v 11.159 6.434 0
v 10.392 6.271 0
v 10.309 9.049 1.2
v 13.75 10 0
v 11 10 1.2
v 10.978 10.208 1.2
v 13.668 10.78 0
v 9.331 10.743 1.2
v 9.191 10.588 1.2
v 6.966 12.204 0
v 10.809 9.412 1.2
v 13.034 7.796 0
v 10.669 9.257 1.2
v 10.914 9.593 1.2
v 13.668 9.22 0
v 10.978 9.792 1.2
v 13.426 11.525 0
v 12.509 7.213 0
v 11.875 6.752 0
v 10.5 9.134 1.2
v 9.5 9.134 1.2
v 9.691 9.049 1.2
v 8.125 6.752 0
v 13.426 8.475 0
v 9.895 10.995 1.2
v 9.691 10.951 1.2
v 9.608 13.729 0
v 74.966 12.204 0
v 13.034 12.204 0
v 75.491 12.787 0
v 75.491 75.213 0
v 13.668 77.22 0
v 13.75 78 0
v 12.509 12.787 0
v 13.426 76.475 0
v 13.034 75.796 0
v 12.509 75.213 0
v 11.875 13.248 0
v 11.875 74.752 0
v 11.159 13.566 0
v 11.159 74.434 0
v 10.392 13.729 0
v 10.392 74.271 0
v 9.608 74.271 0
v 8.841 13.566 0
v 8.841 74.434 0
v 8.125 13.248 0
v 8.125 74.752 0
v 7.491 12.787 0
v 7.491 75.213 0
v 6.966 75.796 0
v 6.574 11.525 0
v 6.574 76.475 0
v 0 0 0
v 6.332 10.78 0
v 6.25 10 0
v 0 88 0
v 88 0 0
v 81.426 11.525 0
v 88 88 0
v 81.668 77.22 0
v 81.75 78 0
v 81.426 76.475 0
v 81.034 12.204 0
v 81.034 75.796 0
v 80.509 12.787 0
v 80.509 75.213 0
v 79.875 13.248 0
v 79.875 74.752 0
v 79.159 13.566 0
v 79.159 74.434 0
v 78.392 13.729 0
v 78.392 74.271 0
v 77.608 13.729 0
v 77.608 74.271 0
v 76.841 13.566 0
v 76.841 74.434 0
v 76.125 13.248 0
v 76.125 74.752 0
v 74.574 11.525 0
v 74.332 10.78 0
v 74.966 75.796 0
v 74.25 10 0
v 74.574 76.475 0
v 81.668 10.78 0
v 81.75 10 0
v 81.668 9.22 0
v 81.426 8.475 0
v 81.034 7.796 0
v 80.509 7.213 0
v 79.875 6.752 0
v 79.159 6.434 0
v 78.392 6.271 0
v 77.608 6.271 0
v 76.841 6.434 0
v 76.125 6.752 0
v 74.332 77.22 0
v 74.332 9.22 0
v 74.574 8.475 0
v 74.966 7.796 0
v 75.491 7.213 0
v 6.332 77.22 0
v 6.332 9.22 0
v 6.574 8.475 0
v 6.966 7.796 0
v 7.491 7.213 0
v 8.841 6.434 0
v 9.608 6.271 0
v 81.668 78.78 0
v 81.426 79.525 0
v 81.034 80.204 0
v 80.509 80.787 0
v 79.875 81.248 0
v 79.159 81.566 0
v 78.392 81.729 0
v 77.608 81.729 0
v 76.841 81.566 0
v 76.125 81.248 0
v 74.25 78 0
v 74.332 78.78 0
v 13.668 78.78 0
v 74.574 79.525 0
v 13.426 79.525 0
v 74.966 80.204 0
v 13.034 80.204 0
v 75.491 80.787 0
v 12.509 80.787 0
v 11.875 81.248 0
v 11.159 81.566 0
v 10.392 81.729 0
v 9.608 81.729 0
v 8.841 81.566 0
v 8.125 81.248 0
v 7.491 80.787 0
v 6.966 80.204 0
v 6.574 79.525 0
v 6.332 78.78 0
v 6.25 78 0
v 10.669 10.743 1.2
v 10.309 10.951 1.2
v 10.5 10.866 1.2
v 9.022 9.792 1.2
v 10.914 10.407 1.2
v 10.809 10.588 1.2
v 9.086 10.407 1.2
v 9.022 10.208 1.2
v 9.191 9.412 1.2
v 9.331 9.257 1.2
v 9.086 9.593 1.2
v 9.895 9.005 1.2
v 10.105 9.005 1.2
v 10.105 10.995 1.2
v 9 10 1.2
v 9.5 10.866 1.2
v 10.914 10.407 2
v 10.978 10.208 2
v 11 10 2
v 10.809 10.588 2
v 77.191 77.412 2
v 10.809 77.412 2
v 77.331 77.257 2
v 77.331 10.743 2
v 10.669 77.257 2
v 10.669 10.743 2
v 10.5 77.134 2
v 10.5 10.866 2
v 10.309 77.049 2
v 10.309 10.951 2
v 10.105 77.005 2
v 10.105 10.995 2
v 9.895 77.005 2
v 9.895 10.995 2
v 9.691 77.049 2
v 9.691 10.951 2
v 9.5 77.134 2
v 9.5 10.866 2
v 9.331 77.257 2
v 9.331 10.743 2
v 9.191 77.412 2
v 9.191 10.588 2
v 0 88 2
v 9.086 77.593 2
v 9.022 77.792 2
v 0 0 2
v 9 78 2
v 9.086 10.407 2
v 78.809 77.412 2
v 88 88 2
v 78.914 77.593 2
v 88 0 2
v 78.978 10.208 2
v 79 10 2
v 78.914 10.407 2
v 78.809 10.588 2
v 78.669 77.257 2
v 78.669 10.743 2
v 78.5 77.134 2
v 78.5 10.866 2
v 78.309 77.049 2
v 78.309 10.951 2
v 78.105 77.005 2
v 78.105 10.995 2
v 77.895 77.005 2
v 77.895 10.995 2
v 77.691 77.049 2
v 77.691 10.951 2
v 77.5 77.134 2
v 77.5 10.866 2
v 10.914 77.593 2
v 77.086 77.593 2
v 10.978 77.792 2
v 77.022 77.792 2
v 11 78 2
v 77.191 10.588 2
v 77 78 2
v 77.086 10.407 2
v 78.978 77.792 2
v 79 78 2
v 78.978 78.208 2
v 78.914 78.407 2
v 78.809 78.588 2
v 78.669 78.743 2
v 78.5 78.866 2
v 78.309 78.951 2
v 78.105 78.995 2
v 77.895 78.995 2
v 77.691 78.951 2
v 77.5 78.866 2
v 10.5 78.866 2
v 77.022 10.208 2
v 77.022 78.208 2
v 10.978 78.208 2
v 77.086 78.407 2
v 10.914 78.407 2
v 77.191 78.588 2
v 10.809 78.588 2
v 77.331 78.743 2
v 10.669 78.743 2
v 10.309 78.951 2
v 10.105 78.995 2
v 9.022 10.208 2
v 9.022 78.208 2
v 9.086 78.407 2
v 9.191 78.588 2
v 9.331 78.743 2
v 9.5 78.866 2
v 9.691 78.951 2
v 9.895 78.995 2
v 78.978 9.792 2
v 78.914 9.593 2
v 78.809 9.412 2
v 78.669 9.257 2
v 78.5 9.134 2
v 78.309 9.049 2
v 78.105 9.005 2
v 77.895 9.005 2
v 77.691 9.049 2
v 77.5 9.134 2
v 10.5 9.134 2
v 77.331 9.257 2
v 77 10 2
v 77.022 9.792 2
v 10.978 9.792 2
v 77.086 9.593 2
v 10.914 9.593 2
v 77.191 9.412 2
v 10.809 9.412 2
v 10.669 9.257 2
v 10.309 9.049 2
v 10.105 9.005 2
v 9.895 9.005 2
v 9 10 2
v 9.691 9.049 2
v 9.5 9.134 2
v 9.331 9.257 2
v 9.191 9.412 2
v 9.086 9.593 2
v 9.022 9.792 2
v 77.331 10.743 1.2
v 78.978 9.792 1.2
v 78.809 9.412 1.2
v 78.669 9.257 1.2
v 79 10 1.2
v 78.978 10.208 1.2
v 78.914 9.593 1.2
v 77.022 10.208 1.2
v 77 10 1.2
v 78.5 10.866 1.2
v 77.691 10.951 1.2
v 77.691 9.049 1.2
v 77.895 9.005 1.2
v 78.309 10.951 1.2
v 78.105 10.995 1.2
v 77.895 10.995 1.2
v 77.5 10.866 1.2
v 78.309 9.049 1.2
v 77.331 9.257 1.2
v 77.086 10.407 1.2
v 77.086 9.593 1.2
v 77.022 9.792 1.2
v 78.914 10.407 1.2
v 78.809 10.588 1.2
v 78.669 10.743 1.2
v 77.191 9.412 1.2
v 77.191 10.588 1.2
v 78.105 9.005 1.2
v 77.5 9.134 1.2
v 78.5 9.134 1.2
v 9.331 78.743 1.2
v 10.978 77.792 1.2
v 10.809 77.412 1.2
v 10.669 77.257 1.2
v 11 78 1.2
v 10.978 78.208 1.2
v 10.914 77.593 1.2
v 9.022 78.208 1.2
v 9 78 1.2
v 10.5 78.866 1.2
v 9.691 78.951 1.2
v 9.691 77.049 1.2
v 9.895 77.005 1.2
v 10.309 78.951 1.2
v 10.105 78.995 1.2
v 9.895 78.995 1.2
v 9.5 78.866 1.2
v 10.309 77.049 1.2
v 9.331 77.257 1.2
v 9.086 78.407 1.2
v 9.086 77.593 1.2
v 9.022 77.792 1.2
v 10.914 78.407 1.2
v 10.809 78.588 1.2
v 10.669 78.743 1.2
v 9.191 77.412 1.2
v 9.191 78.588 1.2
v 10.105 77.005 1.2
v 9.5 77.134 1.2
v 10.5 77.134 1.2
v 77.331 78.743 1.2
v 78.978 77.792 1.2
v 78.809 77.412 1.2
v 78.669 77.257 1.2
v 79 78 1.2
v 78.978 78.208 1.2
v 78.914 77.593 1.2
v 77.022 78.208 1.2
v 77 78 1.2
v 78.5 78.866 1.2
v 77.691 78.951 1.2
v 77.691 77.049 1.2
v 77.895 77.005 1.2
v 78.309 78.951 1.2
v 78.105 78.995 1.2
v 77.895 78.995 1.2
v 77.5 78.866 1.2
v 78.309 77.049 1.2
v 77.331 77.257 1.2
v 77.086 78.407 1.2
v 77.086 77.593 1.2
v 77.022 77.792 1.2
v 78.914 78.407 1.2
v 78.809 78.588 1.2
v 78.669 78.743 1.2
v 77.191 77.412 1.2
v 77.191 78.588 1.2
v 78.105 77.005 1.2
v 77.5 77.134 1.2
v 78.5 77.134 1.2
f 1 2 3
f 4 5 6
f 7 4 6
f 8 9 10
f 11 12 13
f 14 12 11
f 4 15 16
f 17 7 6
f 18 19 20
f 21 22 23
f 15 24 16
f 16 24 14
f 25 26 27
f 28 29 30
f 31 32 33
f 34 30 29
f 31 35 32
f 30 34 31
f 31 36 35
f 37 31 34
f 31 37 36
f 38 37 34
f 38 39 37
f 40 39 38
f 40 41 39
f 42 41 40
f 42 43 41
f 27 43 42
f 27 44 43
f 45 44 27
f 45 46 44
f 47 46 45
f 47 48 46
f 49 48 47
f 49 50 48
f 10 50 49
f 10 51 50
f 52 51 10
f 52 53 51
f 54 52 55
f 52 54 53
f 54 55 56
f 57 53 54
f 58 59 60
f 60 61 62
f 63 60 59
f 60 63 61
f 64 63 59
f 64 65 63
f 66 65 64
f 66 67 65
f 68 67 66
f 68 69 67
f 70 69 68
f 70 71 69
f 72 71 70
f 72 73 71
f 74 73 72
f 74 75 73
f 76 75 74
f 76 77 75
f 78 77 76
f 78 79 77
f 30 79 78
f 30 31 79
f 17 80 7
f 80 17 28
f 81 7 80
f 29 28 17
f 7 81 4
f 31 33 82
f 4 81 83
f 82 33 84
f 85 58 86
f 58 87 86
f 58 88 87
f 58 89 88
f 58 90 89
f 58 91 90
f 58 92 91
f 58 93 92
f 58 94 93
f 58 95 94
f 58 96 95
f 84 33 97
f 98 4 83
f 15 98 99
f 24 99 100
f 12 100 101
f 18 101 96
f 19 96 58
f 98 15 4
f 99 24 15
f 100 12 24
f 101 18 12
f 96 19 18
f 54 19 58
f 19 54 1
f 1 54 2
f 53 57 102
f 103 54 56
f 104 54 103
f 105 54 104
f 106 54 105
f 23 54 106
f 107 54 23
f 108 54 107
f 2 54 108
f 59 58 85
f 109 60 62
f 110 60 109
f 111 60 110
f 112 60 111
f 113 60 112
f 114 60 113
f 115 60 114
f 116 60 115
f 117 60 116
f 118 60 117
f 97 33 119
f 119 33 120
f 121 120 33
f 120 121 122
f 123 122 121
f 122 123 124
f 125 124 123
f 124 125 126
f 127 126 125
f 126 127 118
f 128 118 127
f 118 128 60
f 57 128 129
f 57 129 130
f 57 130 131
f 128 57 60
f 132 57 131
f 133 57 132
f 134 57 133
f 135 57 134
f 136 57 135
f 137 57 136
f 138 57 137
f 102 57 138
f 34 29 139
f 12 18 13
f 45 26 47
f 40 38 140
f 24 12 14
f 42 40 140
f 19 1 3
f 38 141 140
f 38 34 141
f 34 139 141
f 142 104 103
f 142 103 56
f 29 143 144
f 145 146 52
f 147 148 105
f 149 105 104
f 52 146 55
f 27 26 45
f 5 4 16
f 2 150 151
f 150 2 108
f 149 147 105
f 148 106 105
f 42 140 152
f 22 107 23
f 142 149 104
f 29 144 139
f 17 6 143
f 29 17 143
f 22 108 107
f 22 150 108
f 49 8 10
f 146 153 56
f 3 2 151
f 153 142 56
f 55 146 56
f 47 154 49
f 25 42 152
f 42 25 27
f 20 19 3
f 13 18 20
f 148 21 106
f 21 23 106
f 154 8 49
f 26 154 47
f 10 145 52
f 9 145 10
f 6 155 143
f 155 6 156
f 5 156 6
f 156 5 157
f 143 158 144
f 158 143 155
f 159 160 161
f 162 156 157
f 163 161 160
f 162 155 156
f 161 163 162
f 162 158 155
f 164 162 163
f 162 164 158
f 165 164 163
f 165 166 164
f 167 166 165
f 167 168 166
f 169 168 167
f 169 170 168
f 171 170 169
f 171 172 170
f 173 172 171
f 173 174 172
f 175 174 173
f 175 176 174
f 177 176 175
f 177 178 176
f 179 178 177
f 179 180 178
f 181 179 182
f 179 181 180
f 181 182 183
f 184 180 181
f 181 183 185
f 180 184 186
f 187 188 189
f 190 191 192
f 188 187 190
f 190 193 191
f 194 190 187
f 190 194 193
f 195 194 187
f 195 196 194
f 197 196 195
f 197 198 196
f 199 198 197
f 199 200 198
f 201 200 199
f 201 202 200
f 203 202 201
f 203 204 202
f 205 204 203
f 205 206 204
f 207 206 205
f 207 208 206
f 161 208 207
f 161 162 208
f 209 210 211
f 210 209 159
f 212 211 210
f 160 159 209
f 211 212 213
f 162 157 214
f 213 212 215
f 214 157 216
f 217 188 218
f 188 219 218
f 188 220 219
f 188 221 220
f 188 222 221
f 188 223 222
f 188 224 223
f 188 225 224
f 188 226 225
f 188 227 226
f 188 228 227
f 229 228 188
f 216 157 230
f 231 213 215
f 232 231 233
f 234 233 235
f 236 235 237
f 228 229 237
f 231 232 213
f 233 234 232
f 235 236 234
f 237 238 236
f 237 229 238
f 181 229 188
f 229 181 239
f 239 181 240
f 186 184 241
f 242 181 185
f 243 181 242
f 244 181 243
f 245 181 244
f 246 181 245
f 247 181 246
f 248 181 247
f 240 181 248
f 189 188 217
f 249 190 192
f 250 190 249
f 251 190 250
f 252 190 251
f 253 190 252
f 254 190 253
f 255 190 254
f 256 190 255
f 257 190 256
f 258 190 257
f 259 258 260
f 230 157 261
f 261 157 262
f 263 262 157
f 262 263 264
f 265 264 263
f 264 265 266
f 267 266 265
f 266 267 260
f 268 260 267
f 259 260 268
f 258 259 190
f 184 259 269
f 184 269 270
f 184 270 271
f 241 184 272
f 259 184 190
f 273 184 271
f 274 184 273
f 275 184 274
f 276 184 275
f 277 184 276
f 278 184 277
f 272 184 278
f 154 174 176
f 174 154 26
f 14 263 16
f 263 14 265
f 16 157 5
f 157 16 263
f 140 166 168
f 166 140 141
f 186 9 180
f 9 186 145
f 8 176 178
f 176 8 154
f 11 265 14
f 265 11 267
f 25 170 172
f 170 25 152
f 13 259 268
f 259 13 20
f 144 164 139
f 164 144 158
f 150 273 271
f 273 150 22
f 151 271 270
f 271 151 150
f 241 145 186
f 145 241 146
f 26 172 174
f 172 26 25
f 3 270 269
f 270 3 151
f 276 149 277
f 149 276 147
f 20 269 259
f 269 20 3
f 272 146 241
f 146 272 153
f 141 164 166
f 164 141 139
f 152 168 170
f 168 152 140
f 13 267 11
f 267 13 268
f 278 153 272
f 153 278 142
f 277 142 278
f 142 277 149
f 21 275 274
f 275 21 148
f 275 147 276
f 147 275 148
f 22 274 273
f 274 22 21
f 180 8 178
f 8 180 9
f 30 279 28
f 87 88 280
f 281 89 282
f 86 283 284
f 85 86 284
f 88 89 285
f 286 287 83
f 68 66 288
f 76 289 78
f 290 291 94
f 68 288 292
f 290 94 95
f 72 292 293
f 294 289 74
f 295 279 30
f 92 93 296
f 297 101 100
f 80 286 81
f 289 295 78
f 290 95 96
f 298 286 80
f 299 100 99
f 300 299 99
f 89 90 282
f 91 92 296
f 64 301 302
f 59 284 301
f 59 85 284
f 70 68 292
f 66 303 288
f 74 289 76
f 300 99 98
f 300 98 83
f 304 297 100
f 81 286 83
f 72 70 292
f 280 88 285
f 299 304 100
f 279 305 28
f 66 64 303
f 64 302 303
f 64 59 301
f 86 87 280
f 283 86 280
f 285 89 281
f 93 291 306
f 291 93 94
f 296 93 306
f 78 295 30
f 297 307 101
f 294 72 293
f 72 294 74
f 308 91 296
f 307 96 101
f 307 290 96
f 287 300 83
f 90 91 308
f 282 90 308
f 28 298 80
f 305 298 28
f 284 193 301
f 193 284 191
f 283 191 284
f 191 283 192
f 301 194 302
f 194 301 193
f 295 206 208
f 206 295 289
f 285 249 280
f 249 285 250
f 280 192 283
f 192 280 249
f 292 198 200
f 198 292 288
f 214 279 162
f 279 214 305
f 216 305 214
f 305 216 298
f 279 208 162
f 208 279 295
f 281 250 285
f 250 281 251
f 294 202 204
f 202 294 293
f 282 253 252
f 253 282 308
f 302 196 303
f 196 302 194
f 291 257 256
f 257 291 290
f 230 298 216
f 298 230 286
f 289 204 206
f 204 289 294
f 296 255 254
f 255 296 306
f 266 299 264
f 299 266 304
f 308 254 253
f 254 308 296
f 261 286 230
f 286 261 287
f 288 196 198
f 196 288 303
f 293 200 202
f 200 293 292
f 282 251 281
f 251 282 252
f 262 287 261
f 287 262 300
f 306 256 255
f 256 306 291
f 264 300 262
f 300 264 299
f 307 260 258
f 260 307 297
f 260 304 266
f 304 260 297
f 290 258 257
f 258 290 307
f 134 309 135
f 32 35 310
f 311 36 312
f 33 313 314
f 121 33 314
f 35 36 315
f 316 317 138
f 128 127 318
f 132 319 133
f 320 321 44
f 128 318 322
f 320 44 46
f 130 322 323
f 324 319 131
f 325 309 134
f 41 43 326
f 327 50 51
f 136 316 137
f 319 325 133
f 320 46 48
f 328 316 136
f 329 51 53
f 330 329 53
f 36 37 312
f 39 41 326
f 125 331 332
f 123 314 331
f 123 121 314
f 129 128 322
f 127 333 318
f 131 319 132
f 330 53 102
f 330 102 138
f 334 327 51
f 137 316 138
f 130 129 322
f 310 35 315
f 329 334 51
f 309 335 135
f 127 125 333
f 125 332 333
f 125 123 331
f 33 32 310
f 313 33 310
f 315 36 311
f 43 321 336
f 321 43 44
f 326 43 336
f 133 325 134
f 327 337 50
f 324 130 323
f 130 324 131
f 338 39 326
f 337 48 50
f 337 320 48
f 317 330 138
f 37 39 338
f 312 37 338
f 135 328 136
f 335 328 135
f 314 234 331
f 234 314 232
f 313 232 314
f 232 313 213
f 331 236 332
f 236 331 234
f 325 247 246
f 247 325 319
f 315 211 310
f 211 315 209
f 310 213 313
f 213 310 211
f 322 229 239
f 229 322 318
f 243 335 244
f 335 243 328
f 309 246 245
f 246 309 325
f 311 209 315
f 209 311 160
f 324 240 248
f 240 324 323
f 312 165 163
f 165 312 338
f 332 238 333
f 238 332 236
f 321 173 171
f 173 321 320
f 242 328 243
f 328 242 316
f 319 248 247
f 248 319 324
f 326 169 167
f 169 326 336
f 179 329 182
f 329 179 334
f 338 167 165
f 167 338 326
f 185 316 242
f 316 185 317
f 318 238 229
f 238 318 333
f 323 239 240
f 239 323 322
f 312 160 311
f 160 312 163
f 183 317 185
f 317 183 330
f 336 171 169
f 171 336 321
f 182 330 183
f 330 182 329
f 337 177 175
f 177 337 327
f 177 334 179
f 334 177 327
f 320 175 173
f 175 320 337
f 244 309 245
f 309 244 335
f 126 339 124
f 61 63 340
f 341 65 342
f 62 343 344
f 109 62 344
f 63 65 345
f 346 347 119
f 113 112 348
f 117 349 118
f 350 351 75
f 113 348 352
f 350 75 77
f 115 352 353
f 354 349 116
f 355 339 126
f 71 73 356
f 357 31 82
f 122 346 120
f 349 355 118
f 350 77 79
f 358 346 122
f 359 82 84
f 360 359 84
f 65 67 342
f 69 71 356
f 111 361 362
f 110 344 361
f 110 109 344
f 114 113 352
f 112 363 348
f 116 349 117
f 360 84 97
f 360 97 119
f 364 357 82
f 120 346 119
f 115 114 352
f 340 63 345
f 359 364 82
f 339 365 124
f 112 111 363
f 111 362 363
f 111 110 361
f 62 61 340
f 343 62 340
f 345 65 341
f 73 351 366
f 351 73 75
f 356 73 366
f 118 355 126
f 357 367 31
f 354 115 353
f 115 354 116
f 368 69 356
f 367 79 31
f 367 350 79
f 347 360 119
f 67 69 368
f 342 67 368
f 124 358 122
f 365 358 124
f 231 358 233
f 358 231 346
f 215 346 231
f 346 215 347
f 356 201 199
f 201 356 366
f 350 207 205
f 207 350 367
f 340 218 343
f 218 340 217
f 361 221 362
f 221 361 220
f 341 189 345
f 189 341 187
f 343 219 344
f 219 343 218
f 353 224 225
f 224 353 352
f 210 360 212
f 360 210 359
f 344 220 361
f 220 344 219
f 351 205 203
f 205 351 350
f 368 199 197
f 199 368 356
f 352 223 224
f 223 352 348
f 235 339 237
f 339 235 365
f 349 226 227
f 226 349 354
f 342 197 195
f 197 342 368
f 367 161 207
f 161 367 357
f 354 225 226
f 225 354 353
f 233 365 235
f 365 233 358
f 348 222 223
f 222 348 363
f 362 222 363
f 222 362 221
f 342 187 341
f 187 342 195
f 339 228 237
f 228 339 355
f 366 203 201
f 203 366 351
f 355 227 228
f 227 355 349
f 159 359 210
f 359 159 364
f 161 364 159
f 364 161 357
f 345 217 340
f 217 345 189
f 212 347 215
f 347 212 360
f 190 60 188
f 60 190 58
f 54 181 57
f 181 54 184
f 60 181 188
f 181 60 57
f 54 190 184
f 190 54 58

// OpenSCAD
// Tapa cuadrada de 88x88x2mm con agujeros avellanados
difference() {
    // Base de la tapa
    cube([88, 88, 2]);

    // Agujeros avellanados para tornillos
    // Esquina superior izquierda
    translate([10, 10, 0]) {
        // Parte cónica para la cabeza del tornillo (ahora 1.5x más grande)
        cylinder(d1=7.5, d2=2, h=1.2, $fn=30);
        // Agujero pasante para el cuerpo del tornillo
        translate([0, 0, -1])
            cylinder(d=2, h=3, $fn=30);
    }

    // Esquina superior derecha
    translate([78, 10, 0]) {
        cylinder(d1=7.5, d2=2, h=1.2, $fn=30);
        translate([0, 0, -1])
            cylinder(d=2, h=3, $fn=30);
    }

    // Esquina inferior izquierda
    translate([10, 78, 0]) {
        cylinder(d1=7.5, d2=2, h=1.2, $fn=30);
        translate([0, 0, -1])
            cylinder(d=2, h=3, $fn=30);
    }

    // Esquina inferior derecha
    translate([78, 78, 0]) {
        cylinder(d1=7.5, d2=2, h=1.2, $fn=30);
        translate([0, 0, -1])
            cylinder(d=2, h=3, $fn=30);
    }
}
